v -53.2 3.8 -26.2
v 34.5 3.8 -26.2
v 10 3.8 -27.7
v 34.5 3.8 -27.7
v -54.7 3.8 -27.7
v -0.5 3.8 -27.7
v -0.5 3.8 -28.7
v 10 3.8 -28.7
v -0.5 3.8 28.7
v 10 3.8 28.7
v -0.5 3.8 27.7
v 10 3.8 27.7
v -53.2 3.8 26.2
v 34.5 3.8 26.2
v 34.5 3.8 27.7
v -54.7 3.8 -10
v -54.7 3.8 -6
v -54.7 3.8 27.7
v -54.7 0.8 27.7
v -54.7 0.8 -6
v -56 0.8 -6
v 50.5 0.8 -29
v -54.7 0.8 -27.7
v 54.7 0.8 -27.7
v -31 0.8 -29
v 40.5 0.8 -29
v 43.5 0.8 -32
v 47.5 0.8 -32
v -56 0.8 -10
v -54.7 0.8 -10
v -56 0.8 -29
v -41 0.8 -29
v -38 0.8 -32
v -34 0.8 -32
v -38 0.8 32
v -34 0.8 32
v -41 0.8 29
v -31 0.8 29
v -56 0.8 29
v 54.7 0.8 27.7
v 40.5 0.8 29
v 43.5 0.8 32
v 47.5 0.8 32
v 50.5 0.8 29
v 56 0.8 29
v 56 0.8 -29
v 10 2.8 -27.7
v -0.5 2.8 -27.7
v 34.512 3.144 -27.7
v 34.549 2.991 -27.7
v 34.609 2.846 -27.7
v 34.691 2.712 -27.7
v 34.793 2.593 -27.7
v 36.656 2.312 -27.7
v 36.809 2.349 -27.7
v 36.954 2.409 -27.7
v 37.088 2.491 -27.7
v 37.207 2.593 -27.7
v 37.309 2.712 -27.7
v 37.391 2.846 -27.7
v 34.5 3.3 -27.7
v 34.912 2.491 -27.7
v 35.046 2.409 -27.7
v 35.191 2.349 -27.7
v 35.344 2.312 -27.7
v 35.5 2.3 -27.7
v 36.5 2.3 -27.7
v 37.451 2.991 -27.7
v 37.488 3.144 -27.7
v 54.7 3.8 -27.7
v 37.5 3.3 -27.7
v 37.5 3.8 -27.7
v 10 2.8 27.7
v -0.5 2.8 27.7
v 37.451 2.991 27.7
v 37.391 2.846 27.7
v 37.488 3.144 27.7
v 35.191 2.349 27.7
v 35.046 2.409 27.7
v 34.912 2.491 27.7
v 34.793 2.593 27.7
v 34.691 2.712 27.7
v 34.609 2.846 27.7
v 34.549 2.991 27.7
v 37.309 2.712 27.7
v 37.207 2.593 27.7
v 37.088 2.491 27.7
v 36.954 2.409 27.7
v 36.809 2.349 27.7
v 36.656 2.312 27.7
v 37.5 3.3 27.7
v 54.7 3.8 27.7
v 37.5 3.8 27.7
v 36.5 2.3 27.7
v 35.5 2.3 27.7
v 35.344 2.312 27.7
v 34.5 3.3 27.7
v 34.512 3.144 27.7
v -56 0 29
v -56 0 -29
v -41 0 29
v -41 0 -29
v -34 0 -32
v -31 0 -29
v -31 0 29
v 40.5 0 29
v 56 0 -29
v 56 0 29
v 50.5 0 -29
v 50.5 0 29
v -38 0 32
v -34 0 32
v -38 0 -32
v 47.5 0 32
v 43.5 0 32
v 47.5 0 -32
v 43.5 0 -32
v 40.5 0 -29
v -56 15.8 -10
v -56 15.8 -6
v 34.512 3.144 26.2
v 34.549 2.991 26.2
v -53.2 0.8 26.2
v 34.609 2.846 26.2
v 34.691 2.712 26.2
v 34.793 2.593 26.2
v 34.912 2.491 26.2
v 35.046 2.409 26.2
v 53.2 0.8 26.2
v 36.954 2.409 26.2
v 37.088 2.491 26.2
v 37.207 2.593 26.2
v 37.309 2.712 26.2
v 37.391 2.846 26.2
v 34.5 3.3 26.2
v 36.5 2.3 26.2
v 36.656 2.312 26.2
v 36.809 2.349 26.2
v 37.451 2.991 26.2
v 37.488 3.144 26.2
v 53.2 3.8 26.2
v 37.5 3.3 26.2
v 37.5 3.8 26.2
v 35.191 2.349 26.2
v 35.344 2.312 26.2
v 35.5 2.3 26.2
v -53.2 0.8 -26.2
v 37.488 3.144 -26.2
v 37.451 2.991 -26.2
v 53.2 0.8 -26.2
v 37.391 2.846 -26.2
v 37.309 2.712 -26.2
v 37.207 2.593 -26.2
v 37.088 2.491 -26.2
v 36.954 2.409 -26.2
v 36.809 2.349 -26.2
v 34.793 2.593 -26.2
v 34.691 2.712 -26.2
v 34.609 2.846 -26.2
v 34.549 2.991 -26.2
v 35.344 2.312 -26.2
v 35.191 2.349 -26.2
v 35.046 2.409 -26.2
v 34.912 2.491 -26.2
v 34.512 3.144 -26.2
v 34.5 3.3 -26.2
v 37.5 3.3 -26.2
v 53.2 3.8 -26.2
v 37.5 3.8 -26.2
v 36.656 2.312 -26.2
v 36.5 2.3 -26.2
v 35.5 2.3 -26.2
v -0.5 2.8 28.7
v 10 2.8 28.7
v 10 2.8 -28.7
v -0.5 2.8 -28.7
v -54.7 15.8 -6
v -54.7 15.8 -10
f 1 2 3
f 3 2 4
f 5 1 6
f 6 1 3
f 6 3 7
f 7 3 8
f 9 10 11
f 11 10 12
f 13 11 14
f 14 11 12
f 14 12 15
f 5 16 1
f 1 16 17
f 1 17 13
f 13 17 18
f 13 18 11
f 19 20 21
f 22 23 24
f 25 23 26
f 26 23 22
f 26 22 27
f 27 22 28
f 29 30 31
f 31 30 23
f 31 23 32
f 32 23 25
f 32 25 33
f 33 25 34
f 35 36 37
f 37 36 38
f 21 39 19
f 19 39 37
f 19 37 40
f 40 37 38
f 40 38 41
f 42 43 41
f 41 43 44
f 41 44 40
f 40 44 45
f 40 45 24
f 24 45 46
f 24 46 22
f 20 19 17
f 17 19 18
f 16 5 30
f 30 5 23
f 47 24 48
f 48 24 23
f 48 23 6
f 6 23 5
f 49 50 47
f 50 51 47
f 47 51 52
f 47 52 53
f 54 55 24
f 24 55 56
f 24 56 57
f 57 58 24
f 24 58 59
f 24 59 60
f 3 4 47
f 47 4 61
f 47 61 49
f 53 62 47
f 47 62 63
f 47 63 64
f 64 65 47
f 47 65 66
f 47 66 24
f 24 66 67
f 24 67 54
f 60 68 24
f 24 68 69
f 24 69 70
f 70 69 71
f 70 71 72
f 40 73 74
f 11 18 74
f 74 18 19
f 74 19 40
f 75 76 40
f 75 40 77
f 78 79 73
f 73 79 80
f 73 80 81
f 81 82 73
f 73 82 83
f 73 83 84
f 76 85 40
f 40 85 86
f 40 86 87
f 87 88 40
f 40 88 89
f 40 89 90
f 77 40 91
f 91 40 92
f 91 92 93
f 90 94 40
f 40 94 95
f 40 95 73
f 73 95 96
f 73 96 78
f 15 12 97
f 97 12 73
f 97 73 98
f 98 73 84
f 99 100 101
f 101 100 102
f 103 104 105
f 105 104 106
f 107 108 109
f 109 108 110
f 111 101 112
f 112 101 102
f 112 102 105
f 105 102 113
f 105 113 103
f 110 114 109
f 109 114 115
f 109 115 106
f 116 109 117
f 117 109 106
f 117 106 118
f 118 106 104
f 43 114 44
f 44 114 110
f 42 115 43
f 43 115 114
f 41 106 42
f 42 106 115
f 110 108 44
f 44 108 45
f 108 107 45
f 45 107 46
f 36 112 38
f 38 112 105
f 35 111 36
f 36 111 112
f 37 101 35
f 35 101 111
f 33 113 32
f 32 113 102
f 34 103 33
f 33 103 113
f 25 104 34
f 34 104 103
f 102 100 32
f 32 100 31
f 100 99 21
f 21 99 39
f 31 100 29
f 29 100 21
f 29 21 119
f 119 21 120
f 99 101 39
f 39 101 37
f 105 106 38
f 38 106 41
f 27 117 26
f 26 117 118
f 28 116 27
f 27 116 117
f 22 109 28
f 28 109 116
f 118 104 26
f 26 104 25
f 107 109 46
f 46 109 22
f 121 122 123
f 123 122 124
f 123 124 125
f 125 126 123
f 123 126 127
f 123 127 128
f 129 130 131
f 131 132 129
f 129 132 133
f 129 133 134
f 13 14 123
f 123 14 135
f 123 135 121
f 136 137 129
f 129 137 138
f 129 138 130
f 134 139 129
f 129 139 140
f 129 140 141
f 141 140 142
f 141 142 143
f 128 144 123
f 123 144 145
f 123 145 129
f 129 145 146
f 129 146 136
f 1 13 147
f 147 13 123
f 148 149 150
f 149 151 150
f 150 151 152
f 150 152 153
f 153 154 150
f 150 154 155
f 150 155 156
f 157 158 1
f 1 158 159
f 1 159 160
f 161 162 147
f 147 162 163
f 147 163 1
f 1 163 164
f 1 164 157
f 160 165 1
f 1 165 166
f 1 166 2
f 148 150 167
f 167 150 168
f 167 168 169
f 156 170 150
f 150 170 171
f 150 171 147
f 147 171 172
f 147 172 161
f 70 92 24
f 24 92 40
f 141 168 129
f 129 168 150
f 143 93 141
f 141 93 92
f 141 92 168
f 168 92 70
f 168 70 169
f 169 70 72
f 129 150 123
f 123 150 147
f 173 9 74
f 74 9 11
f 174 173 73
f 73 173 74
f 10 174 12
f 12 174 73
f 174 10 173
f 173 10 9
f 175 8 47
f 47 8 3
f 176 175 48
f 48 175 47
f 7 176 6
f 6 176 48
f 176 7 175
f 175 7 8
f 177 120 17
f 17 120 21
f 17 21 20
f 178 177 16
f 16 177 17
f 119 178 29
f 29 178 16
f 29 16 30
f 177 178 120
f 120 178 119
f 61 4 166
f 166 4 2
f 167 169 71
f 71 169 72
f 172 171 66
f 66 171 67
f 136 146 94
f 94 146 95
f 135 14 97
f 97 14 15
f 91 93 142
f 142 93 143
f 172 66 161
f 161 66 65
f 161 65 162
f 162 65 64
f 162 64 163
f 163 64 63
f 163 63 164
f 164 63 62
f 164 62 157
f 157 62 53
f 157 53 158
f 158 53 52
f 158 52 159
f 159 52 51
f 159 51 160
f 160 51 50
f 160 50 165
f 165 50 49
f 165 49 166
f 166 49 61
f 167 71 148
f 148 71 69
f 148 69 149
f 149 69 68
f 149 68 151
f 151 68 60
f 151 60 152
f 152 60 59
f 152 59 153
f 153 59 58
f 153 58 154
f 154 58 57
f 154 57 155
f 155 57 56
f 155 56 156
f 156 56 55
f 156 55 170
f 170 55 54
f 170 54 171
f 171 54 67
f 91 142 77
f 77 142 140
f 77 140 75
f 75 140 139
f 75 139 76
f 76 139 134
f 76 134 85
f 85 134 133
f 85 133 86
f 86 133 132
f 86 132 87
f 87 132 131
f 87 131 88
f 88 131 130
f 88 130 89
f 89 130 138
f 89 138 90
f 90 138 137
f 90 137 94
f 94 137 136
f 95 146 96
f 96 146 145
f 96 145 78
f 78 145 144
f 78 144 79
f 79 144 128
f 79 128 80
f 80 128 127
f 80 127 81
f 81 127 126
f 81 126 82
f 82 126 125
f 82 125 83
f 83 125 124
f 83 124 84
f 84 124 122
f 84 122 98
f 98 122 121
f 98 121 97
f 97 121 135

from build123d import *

# Parameters (mm, degrees)
SKETCH1_W               = 112
SKETCH1_H               = 58
BOSS_EXTRUDE1_DEPTH     = 0.8
SKETCH2_W               = 112
SKETCH2_H               = 58
SKETCH2_W_2             = 110
SKETCH2_H_2             = 56
BOSS_EXTRUDE2_DEPTH     = 28
SKETCH3_R               = 1.75
CUT_EXTRUDE1_DEPTH      = 28
BOSS_EXTRUDE3_START     = 2
SKETCH4_R               = 3.25
SKETCH4_R_2             = 1.75
BOSS_EXTRUDE3_DEPTH     = 2
CUT_EXTRUDE2_DEPTH      = 2
CUT_EXTRUDE3_DEPTH      = 72
BOSS_EXTRUDE4_DEPTH     = 28.8
SKETCH8_W               = 11.5
SKETCH8_H               = 1.5
CUT_EXTRUDE4_DEPTH      = 70
CUT_EXTRUDE5_DEPTH      = 70
CUT_EXTRUDE5_DEPTH_BACK = 70
SKETCH9_W               = 112
SKETCH9_H               = 28
SKETCH10_W              = 8.327989843
SKETCH10_H              = 7.445097605
SKETCH10_W_2            = 5.355096577
SKETCH10_H_2            = 5.953712533
SKETCH10_W_3            = 11.410895322
SKETCH10_H_3            = 5.715079946
SKETCH10_W_4            = 8.730278995
SKETCH10_H_4            = 7.857983818
BOSS_EXTRUDE5_DEPTH     = 0.8
SKETCH11_W              = 106.4
SKETCH11_H              = 52.4
BOSS_EXTRUDE6_DEPTH     = 3
SKETCH12_W              = 10.5
SKETCH12_H              = 1
BOSS_EXTRUDE7_DEPTH     = 1
SKETCH13_W              = 10.5
SKETCH13_H              = 1
BOSS_EXTRUDE8_DEPTH     = 1
SKETCH14_W              = 1.3
SKETCH14_H              = 4
BOSS_EXTRUDE9_DEPTH     = 15
SKETCH15_W              = 3
SKETCH15_H              = 1.5
CUT_EXTRUDE6_DEPTH      = 70
FILLET1_R               = 1


with BuildPart() as part:
    # Sketch1 → Boss-Extrude1 (new body)
    with BuildSketch(Plane(origin=(0, 0, 0), x_dir=(1, 0, 0), z_dir=(0, 1, 0))):
        Rectangle(SKETCH1_W, SKETCH1_H)
    extrude(amount=BOSS_EXTRUDE1_DEPTH)

    # Sketch2 → Boss-Extrude2 (add)
    with BuildSketch(Plane(origin=(0, 0.8, 0), x_dir=(1, 0, 0), z_dir=(0, 1, 0))):
        Rectangle(SKETCH2_W, SKETCH2_H)
        Rectangle(SKETCH2_W_2, SKETCH2_H_2, mode=Mode.SUBTRACT)
    extrude(amount=BOSS_EXTRUDE2_DEPTH)

    # Sketch3 → Cut-Extrude1 (cut)
    with BuildSketch(Plane(origin=(0, 0.8, 0), x_dir=(1, 0, 0), z_dir=(0, 1, 0))):
        with Locations(Location((-36, 25.5, 0), (0, 0, 270))):
            Circle(SKETCH3_R)
        with Locations(Location((-36, -25.5, 0), (0, 0, 270))):
            Circle(SKETCH3_R)
        with Locations(Location((45.5, 25.5, 0), (0, 0, 270))):
            Circle(SKETCH3_R)
        with Locations(Location((45.5, -25.5, 0), (0, 0, 270))):
            Circle(SKETCH3_R)
    extrude(amount=-CUT_EXTRUDE1_DEPTH, mode=Mode.SUBTRACT)

    # Sketch4 → Boss-Extrude3 (add)
    # profile 1 of 4: a face of its own
    with BuildSketch(Plane(origin=(0, 0.8, 0), x_dir=(1, 0, 0), z_dir=(0, 1, 0)).offset(BOSS_EXTRUDE3_START)):
        with Locations((-36, 25.5)):
            Circle(SKETCH4_R)
        with Locations(Location((-36, 25.5, 0), (0, 0, 270))):
            Circle(SKETCH4_R_2, mode=Mode.SUBTRACT)
    # profile 2 of 4: a face of its own
    with BuildSketch(Plane(origin=(0, 0.8, 0), x_dir=(1, 0, 0), z_dir=(0, 1, 0)).offset(BOSS_EXTRUDE3_START)):
        with Locations((45.5, 25.5)):
            Circle(SKETCH4_R)
        with Locations(Location((45.5, 25.5, 0), (0, 0, 270))):
            Circle(SKETCH4_R_2, mode=Mode.SUBTRACT)
    # profile 3 of 4: a face of its own
    with BuildSketch(Plane(origin=(0, 0.8, 0), x_dir=(1, 0, 0), z_dir=(0, 1, 0)).offset(BOSS_EXTRUDE3_START)):
        with Locations((-36, -25.5)):
            Circle(SKETCH4_R)
        with Locations(Location((-36, -25.5, 0), (0, 0, 270))):
            Circle(SKETCH4_R_2, mode=Mode.SUBTRACT)
    # profile 4 of 4: a face of its own
    with BuildSketch(Plane(origin=(0, 0.8, 0), x_dir=(1, 0, 0), z_dir=(0, 1, 0)).offset(BOSS_EXTRUDE3_START)):
        with Locations((45.5, -25.5)):
            Circle(SKETCH4_R)
        with Locations(Location((45.5, -25.5, 0), (0, 0, 270))):
            Circle(SKETCH4_R_2, mode=Mode.SUBTRACT)
    extrude(amount=-BOSS_EXTRUDE3_DEPTH)

    # Sketch5 → Cut-Extrude2 (cut)
    with BuildSketch(Plane(origin=(-55, 0, 0), x_dir=(0, 0, -1), z_dir=(1, 0, 0))):
        with BuildLine():
            Line((-10.5, 28.8), (-10.5, 10.8))
            ThreePointArc((-10.5, 10.8), (-8, 8.3), (-5.5, 10.8))
            Line((-5.5, 10.8), (-5.5, 28.8))
            Line((-5.5, 28.8), (-10.5, 28.8))
        make_face()
    extrude(amount=-CUT_EXTRUDE2_DEPTH, mode=Mode.SUBTRACT)

    # Sketch6 → Cut-Extrude3 (cut)
    with BuildSketch(Plane.XY.offset(29)):
        with BuildLine():
            Line((34.5, 25.8), (34.5, 28.8))
            Line((34.5, 28.8), (37.5, 28.8))
            Line((37.5, 28.8), (37.5, 25.8))
            ThreePointArc((37.5, 25.8), (36, 24.3), (34.5, 25.8))
        make_face()
    extrude(amount=-CUT_EXTRUDE3_DEPTH, mode=Mode.SUBTRACT)

    # Sketch7 → Boss-Extrude4 (add)
    with BuildSketch(Plane.XZ):
        Polygon((-41, 29), (-38, 32), (-34, 32), (-31, 29), align=None)
        Polygon((40.5, 29), (43.5, 32), (47.5, 32), (50.5, 29), align=None)
        Polygon((-41, -29), (-38, -32), (-34, -32), (-31, -29), align=None)
        Polygon((40.5, -29), (43.5, -32), (47.5, -32), (50.5, -29), align=None)
    extrude(amount=-BOSS_EXTRUDE4_DEPTH)

    # Sketch8 → Cut-Extrude4 (cut)
    with BuildSketch(Plane.XY.offset(29)):
        with Locations((4.75, 26.55)):
            Rectangle(SKETCH8_W, SKETCH8_H)
    extrude(amount=-CUT_EXTRUDE4_DEPTH, mode=Mode.SUBTRACT)

    # Sketch9 → Cut-Extrude5 (cut, two sides: drawn at the far end of the back side and taken through both)
    with BuildSketch(Plane.XY.offset(29).offset(-CUT_EXTRUDE5_DEPTH_BACK)):
        with Locations((0, 14.8)):
            Rectangle(SKETCH9_W, SKETCH9_H)
    extrude(amount=CUT_EXTRUDE5_DEPTH + CUT_EXTRUDE5_DEPTH_BACK, mode=Mode.SUBTRACT)

    # Sketch10 → Boss-Extrude5 (add)
    with BuildSketch(Plane(origin=(0, 0.8, 0), x_dir=(1, 0, 0), z_dir=(0, 1, 0))):
        with Locations((-35.349106924, 23.952885498)):
            Rectangle(SKETCH10_W, SKETCH10_H)
        with Locations((45.232488371, 24.698578034)):
            Rectangle(SKETCH10_W_2, SKETCH10_H_2)
        with Locations((-36.890559663, -24.651256065)):
            Rectangle(SKETCH10_W_3, SKETCH10_H_3)
        with Locations((45.075573152, -24.28226276)):
            Rectangle(SKETCH10_W_4, SKETCH10_H_4)
    extrude(amount=-BOSS_EXTRUDE5_DEPTH)

    # Sketch11 → Boss-Extrude6 (add)
    with BuildSketch(Plane(origin=(0, 0.8, 0), x_dir=(1, 0, 0), z_dir=(0, 1, 0))):
        Polygon((-51.704605873, 27.7), (-54.7, 27.7), (-54.7, 25.360609515), (-54.7, -24.546387496), (-54.7, -27.7), (-52.806207703, -27.7), (50.795370915, -27.7), (54.7, -27.7), (54.7, -25.222572544), (54.7, 24.684424467), (54.7, 27.7), (51.896972744, 27.7), align=None)
        Rectangle(SKETCH11_W, SKETCH11_H, mode=Mode.SUBTRACT)
    extrude(amount=BOSS_EXTRUDE6_DEPTH)

    # Sketch12 → Boss-Extrude7 (add)
    with BuildSketch(Plane.XY.offset(27.7)):
        with Locations((4.75, 3.3)):
            Rectangle(SKETCH12_W, SKETCH12_H)
    extrude(amount=BOSS_EXTRUDE7_DEPTH)

    # Sketch13 → Boss-Extrude8 (add)
    with BuildSketch(Plane(origin=(0, 0, -27.7), x_dir=(-1, 0, 0), z_dir=(0, 0, -1))):
        with Locations((-4.75, 3.3)):
            Rectangle(SKETCH13_W, SKETCH13_H)
    extrude(amount=BOSS_EXTRUDE8_DEPTH)

    # Sketch14 → Boss-Extrude9 (add)
    with BuildSketch(Plane(origin=(0, 0.8, 0), x_dir=(1, 0, 0), z_dir=(0, 1, 0))):
        with Locations((-55.35, 8)):
            Rectangle(SKETCH14_W, SKETCH14_H)
    extrude(amount=BOSS_EXTRUDE9_DEPTH)

    # Sketch15 → Cut-Extrude6 (cut)
    with BuildSketch(Plane.XY.offset(27.7)):
        with Locations((36, 3.05)):
            Rectangle(SKETCH15_W, SKETCH15_H)
    extrude(amount=-CUT_EXTRUDE6_DEPTH, mode=Mode.SUBTRACT)

    # Fillet1
    fillet1_edges = [part.edges().sort_by_distance(p)[0] for p in [
        (37.5, 2.3, 26.95),
        (37.5, 2.3, -26.95),
        (34.5, 2.3, 26.95),
        (34.5, 2.3, -26.95),
    ]]
    fillet(fillet1_edges, radius=FILLET1_R)


solid = part.part
